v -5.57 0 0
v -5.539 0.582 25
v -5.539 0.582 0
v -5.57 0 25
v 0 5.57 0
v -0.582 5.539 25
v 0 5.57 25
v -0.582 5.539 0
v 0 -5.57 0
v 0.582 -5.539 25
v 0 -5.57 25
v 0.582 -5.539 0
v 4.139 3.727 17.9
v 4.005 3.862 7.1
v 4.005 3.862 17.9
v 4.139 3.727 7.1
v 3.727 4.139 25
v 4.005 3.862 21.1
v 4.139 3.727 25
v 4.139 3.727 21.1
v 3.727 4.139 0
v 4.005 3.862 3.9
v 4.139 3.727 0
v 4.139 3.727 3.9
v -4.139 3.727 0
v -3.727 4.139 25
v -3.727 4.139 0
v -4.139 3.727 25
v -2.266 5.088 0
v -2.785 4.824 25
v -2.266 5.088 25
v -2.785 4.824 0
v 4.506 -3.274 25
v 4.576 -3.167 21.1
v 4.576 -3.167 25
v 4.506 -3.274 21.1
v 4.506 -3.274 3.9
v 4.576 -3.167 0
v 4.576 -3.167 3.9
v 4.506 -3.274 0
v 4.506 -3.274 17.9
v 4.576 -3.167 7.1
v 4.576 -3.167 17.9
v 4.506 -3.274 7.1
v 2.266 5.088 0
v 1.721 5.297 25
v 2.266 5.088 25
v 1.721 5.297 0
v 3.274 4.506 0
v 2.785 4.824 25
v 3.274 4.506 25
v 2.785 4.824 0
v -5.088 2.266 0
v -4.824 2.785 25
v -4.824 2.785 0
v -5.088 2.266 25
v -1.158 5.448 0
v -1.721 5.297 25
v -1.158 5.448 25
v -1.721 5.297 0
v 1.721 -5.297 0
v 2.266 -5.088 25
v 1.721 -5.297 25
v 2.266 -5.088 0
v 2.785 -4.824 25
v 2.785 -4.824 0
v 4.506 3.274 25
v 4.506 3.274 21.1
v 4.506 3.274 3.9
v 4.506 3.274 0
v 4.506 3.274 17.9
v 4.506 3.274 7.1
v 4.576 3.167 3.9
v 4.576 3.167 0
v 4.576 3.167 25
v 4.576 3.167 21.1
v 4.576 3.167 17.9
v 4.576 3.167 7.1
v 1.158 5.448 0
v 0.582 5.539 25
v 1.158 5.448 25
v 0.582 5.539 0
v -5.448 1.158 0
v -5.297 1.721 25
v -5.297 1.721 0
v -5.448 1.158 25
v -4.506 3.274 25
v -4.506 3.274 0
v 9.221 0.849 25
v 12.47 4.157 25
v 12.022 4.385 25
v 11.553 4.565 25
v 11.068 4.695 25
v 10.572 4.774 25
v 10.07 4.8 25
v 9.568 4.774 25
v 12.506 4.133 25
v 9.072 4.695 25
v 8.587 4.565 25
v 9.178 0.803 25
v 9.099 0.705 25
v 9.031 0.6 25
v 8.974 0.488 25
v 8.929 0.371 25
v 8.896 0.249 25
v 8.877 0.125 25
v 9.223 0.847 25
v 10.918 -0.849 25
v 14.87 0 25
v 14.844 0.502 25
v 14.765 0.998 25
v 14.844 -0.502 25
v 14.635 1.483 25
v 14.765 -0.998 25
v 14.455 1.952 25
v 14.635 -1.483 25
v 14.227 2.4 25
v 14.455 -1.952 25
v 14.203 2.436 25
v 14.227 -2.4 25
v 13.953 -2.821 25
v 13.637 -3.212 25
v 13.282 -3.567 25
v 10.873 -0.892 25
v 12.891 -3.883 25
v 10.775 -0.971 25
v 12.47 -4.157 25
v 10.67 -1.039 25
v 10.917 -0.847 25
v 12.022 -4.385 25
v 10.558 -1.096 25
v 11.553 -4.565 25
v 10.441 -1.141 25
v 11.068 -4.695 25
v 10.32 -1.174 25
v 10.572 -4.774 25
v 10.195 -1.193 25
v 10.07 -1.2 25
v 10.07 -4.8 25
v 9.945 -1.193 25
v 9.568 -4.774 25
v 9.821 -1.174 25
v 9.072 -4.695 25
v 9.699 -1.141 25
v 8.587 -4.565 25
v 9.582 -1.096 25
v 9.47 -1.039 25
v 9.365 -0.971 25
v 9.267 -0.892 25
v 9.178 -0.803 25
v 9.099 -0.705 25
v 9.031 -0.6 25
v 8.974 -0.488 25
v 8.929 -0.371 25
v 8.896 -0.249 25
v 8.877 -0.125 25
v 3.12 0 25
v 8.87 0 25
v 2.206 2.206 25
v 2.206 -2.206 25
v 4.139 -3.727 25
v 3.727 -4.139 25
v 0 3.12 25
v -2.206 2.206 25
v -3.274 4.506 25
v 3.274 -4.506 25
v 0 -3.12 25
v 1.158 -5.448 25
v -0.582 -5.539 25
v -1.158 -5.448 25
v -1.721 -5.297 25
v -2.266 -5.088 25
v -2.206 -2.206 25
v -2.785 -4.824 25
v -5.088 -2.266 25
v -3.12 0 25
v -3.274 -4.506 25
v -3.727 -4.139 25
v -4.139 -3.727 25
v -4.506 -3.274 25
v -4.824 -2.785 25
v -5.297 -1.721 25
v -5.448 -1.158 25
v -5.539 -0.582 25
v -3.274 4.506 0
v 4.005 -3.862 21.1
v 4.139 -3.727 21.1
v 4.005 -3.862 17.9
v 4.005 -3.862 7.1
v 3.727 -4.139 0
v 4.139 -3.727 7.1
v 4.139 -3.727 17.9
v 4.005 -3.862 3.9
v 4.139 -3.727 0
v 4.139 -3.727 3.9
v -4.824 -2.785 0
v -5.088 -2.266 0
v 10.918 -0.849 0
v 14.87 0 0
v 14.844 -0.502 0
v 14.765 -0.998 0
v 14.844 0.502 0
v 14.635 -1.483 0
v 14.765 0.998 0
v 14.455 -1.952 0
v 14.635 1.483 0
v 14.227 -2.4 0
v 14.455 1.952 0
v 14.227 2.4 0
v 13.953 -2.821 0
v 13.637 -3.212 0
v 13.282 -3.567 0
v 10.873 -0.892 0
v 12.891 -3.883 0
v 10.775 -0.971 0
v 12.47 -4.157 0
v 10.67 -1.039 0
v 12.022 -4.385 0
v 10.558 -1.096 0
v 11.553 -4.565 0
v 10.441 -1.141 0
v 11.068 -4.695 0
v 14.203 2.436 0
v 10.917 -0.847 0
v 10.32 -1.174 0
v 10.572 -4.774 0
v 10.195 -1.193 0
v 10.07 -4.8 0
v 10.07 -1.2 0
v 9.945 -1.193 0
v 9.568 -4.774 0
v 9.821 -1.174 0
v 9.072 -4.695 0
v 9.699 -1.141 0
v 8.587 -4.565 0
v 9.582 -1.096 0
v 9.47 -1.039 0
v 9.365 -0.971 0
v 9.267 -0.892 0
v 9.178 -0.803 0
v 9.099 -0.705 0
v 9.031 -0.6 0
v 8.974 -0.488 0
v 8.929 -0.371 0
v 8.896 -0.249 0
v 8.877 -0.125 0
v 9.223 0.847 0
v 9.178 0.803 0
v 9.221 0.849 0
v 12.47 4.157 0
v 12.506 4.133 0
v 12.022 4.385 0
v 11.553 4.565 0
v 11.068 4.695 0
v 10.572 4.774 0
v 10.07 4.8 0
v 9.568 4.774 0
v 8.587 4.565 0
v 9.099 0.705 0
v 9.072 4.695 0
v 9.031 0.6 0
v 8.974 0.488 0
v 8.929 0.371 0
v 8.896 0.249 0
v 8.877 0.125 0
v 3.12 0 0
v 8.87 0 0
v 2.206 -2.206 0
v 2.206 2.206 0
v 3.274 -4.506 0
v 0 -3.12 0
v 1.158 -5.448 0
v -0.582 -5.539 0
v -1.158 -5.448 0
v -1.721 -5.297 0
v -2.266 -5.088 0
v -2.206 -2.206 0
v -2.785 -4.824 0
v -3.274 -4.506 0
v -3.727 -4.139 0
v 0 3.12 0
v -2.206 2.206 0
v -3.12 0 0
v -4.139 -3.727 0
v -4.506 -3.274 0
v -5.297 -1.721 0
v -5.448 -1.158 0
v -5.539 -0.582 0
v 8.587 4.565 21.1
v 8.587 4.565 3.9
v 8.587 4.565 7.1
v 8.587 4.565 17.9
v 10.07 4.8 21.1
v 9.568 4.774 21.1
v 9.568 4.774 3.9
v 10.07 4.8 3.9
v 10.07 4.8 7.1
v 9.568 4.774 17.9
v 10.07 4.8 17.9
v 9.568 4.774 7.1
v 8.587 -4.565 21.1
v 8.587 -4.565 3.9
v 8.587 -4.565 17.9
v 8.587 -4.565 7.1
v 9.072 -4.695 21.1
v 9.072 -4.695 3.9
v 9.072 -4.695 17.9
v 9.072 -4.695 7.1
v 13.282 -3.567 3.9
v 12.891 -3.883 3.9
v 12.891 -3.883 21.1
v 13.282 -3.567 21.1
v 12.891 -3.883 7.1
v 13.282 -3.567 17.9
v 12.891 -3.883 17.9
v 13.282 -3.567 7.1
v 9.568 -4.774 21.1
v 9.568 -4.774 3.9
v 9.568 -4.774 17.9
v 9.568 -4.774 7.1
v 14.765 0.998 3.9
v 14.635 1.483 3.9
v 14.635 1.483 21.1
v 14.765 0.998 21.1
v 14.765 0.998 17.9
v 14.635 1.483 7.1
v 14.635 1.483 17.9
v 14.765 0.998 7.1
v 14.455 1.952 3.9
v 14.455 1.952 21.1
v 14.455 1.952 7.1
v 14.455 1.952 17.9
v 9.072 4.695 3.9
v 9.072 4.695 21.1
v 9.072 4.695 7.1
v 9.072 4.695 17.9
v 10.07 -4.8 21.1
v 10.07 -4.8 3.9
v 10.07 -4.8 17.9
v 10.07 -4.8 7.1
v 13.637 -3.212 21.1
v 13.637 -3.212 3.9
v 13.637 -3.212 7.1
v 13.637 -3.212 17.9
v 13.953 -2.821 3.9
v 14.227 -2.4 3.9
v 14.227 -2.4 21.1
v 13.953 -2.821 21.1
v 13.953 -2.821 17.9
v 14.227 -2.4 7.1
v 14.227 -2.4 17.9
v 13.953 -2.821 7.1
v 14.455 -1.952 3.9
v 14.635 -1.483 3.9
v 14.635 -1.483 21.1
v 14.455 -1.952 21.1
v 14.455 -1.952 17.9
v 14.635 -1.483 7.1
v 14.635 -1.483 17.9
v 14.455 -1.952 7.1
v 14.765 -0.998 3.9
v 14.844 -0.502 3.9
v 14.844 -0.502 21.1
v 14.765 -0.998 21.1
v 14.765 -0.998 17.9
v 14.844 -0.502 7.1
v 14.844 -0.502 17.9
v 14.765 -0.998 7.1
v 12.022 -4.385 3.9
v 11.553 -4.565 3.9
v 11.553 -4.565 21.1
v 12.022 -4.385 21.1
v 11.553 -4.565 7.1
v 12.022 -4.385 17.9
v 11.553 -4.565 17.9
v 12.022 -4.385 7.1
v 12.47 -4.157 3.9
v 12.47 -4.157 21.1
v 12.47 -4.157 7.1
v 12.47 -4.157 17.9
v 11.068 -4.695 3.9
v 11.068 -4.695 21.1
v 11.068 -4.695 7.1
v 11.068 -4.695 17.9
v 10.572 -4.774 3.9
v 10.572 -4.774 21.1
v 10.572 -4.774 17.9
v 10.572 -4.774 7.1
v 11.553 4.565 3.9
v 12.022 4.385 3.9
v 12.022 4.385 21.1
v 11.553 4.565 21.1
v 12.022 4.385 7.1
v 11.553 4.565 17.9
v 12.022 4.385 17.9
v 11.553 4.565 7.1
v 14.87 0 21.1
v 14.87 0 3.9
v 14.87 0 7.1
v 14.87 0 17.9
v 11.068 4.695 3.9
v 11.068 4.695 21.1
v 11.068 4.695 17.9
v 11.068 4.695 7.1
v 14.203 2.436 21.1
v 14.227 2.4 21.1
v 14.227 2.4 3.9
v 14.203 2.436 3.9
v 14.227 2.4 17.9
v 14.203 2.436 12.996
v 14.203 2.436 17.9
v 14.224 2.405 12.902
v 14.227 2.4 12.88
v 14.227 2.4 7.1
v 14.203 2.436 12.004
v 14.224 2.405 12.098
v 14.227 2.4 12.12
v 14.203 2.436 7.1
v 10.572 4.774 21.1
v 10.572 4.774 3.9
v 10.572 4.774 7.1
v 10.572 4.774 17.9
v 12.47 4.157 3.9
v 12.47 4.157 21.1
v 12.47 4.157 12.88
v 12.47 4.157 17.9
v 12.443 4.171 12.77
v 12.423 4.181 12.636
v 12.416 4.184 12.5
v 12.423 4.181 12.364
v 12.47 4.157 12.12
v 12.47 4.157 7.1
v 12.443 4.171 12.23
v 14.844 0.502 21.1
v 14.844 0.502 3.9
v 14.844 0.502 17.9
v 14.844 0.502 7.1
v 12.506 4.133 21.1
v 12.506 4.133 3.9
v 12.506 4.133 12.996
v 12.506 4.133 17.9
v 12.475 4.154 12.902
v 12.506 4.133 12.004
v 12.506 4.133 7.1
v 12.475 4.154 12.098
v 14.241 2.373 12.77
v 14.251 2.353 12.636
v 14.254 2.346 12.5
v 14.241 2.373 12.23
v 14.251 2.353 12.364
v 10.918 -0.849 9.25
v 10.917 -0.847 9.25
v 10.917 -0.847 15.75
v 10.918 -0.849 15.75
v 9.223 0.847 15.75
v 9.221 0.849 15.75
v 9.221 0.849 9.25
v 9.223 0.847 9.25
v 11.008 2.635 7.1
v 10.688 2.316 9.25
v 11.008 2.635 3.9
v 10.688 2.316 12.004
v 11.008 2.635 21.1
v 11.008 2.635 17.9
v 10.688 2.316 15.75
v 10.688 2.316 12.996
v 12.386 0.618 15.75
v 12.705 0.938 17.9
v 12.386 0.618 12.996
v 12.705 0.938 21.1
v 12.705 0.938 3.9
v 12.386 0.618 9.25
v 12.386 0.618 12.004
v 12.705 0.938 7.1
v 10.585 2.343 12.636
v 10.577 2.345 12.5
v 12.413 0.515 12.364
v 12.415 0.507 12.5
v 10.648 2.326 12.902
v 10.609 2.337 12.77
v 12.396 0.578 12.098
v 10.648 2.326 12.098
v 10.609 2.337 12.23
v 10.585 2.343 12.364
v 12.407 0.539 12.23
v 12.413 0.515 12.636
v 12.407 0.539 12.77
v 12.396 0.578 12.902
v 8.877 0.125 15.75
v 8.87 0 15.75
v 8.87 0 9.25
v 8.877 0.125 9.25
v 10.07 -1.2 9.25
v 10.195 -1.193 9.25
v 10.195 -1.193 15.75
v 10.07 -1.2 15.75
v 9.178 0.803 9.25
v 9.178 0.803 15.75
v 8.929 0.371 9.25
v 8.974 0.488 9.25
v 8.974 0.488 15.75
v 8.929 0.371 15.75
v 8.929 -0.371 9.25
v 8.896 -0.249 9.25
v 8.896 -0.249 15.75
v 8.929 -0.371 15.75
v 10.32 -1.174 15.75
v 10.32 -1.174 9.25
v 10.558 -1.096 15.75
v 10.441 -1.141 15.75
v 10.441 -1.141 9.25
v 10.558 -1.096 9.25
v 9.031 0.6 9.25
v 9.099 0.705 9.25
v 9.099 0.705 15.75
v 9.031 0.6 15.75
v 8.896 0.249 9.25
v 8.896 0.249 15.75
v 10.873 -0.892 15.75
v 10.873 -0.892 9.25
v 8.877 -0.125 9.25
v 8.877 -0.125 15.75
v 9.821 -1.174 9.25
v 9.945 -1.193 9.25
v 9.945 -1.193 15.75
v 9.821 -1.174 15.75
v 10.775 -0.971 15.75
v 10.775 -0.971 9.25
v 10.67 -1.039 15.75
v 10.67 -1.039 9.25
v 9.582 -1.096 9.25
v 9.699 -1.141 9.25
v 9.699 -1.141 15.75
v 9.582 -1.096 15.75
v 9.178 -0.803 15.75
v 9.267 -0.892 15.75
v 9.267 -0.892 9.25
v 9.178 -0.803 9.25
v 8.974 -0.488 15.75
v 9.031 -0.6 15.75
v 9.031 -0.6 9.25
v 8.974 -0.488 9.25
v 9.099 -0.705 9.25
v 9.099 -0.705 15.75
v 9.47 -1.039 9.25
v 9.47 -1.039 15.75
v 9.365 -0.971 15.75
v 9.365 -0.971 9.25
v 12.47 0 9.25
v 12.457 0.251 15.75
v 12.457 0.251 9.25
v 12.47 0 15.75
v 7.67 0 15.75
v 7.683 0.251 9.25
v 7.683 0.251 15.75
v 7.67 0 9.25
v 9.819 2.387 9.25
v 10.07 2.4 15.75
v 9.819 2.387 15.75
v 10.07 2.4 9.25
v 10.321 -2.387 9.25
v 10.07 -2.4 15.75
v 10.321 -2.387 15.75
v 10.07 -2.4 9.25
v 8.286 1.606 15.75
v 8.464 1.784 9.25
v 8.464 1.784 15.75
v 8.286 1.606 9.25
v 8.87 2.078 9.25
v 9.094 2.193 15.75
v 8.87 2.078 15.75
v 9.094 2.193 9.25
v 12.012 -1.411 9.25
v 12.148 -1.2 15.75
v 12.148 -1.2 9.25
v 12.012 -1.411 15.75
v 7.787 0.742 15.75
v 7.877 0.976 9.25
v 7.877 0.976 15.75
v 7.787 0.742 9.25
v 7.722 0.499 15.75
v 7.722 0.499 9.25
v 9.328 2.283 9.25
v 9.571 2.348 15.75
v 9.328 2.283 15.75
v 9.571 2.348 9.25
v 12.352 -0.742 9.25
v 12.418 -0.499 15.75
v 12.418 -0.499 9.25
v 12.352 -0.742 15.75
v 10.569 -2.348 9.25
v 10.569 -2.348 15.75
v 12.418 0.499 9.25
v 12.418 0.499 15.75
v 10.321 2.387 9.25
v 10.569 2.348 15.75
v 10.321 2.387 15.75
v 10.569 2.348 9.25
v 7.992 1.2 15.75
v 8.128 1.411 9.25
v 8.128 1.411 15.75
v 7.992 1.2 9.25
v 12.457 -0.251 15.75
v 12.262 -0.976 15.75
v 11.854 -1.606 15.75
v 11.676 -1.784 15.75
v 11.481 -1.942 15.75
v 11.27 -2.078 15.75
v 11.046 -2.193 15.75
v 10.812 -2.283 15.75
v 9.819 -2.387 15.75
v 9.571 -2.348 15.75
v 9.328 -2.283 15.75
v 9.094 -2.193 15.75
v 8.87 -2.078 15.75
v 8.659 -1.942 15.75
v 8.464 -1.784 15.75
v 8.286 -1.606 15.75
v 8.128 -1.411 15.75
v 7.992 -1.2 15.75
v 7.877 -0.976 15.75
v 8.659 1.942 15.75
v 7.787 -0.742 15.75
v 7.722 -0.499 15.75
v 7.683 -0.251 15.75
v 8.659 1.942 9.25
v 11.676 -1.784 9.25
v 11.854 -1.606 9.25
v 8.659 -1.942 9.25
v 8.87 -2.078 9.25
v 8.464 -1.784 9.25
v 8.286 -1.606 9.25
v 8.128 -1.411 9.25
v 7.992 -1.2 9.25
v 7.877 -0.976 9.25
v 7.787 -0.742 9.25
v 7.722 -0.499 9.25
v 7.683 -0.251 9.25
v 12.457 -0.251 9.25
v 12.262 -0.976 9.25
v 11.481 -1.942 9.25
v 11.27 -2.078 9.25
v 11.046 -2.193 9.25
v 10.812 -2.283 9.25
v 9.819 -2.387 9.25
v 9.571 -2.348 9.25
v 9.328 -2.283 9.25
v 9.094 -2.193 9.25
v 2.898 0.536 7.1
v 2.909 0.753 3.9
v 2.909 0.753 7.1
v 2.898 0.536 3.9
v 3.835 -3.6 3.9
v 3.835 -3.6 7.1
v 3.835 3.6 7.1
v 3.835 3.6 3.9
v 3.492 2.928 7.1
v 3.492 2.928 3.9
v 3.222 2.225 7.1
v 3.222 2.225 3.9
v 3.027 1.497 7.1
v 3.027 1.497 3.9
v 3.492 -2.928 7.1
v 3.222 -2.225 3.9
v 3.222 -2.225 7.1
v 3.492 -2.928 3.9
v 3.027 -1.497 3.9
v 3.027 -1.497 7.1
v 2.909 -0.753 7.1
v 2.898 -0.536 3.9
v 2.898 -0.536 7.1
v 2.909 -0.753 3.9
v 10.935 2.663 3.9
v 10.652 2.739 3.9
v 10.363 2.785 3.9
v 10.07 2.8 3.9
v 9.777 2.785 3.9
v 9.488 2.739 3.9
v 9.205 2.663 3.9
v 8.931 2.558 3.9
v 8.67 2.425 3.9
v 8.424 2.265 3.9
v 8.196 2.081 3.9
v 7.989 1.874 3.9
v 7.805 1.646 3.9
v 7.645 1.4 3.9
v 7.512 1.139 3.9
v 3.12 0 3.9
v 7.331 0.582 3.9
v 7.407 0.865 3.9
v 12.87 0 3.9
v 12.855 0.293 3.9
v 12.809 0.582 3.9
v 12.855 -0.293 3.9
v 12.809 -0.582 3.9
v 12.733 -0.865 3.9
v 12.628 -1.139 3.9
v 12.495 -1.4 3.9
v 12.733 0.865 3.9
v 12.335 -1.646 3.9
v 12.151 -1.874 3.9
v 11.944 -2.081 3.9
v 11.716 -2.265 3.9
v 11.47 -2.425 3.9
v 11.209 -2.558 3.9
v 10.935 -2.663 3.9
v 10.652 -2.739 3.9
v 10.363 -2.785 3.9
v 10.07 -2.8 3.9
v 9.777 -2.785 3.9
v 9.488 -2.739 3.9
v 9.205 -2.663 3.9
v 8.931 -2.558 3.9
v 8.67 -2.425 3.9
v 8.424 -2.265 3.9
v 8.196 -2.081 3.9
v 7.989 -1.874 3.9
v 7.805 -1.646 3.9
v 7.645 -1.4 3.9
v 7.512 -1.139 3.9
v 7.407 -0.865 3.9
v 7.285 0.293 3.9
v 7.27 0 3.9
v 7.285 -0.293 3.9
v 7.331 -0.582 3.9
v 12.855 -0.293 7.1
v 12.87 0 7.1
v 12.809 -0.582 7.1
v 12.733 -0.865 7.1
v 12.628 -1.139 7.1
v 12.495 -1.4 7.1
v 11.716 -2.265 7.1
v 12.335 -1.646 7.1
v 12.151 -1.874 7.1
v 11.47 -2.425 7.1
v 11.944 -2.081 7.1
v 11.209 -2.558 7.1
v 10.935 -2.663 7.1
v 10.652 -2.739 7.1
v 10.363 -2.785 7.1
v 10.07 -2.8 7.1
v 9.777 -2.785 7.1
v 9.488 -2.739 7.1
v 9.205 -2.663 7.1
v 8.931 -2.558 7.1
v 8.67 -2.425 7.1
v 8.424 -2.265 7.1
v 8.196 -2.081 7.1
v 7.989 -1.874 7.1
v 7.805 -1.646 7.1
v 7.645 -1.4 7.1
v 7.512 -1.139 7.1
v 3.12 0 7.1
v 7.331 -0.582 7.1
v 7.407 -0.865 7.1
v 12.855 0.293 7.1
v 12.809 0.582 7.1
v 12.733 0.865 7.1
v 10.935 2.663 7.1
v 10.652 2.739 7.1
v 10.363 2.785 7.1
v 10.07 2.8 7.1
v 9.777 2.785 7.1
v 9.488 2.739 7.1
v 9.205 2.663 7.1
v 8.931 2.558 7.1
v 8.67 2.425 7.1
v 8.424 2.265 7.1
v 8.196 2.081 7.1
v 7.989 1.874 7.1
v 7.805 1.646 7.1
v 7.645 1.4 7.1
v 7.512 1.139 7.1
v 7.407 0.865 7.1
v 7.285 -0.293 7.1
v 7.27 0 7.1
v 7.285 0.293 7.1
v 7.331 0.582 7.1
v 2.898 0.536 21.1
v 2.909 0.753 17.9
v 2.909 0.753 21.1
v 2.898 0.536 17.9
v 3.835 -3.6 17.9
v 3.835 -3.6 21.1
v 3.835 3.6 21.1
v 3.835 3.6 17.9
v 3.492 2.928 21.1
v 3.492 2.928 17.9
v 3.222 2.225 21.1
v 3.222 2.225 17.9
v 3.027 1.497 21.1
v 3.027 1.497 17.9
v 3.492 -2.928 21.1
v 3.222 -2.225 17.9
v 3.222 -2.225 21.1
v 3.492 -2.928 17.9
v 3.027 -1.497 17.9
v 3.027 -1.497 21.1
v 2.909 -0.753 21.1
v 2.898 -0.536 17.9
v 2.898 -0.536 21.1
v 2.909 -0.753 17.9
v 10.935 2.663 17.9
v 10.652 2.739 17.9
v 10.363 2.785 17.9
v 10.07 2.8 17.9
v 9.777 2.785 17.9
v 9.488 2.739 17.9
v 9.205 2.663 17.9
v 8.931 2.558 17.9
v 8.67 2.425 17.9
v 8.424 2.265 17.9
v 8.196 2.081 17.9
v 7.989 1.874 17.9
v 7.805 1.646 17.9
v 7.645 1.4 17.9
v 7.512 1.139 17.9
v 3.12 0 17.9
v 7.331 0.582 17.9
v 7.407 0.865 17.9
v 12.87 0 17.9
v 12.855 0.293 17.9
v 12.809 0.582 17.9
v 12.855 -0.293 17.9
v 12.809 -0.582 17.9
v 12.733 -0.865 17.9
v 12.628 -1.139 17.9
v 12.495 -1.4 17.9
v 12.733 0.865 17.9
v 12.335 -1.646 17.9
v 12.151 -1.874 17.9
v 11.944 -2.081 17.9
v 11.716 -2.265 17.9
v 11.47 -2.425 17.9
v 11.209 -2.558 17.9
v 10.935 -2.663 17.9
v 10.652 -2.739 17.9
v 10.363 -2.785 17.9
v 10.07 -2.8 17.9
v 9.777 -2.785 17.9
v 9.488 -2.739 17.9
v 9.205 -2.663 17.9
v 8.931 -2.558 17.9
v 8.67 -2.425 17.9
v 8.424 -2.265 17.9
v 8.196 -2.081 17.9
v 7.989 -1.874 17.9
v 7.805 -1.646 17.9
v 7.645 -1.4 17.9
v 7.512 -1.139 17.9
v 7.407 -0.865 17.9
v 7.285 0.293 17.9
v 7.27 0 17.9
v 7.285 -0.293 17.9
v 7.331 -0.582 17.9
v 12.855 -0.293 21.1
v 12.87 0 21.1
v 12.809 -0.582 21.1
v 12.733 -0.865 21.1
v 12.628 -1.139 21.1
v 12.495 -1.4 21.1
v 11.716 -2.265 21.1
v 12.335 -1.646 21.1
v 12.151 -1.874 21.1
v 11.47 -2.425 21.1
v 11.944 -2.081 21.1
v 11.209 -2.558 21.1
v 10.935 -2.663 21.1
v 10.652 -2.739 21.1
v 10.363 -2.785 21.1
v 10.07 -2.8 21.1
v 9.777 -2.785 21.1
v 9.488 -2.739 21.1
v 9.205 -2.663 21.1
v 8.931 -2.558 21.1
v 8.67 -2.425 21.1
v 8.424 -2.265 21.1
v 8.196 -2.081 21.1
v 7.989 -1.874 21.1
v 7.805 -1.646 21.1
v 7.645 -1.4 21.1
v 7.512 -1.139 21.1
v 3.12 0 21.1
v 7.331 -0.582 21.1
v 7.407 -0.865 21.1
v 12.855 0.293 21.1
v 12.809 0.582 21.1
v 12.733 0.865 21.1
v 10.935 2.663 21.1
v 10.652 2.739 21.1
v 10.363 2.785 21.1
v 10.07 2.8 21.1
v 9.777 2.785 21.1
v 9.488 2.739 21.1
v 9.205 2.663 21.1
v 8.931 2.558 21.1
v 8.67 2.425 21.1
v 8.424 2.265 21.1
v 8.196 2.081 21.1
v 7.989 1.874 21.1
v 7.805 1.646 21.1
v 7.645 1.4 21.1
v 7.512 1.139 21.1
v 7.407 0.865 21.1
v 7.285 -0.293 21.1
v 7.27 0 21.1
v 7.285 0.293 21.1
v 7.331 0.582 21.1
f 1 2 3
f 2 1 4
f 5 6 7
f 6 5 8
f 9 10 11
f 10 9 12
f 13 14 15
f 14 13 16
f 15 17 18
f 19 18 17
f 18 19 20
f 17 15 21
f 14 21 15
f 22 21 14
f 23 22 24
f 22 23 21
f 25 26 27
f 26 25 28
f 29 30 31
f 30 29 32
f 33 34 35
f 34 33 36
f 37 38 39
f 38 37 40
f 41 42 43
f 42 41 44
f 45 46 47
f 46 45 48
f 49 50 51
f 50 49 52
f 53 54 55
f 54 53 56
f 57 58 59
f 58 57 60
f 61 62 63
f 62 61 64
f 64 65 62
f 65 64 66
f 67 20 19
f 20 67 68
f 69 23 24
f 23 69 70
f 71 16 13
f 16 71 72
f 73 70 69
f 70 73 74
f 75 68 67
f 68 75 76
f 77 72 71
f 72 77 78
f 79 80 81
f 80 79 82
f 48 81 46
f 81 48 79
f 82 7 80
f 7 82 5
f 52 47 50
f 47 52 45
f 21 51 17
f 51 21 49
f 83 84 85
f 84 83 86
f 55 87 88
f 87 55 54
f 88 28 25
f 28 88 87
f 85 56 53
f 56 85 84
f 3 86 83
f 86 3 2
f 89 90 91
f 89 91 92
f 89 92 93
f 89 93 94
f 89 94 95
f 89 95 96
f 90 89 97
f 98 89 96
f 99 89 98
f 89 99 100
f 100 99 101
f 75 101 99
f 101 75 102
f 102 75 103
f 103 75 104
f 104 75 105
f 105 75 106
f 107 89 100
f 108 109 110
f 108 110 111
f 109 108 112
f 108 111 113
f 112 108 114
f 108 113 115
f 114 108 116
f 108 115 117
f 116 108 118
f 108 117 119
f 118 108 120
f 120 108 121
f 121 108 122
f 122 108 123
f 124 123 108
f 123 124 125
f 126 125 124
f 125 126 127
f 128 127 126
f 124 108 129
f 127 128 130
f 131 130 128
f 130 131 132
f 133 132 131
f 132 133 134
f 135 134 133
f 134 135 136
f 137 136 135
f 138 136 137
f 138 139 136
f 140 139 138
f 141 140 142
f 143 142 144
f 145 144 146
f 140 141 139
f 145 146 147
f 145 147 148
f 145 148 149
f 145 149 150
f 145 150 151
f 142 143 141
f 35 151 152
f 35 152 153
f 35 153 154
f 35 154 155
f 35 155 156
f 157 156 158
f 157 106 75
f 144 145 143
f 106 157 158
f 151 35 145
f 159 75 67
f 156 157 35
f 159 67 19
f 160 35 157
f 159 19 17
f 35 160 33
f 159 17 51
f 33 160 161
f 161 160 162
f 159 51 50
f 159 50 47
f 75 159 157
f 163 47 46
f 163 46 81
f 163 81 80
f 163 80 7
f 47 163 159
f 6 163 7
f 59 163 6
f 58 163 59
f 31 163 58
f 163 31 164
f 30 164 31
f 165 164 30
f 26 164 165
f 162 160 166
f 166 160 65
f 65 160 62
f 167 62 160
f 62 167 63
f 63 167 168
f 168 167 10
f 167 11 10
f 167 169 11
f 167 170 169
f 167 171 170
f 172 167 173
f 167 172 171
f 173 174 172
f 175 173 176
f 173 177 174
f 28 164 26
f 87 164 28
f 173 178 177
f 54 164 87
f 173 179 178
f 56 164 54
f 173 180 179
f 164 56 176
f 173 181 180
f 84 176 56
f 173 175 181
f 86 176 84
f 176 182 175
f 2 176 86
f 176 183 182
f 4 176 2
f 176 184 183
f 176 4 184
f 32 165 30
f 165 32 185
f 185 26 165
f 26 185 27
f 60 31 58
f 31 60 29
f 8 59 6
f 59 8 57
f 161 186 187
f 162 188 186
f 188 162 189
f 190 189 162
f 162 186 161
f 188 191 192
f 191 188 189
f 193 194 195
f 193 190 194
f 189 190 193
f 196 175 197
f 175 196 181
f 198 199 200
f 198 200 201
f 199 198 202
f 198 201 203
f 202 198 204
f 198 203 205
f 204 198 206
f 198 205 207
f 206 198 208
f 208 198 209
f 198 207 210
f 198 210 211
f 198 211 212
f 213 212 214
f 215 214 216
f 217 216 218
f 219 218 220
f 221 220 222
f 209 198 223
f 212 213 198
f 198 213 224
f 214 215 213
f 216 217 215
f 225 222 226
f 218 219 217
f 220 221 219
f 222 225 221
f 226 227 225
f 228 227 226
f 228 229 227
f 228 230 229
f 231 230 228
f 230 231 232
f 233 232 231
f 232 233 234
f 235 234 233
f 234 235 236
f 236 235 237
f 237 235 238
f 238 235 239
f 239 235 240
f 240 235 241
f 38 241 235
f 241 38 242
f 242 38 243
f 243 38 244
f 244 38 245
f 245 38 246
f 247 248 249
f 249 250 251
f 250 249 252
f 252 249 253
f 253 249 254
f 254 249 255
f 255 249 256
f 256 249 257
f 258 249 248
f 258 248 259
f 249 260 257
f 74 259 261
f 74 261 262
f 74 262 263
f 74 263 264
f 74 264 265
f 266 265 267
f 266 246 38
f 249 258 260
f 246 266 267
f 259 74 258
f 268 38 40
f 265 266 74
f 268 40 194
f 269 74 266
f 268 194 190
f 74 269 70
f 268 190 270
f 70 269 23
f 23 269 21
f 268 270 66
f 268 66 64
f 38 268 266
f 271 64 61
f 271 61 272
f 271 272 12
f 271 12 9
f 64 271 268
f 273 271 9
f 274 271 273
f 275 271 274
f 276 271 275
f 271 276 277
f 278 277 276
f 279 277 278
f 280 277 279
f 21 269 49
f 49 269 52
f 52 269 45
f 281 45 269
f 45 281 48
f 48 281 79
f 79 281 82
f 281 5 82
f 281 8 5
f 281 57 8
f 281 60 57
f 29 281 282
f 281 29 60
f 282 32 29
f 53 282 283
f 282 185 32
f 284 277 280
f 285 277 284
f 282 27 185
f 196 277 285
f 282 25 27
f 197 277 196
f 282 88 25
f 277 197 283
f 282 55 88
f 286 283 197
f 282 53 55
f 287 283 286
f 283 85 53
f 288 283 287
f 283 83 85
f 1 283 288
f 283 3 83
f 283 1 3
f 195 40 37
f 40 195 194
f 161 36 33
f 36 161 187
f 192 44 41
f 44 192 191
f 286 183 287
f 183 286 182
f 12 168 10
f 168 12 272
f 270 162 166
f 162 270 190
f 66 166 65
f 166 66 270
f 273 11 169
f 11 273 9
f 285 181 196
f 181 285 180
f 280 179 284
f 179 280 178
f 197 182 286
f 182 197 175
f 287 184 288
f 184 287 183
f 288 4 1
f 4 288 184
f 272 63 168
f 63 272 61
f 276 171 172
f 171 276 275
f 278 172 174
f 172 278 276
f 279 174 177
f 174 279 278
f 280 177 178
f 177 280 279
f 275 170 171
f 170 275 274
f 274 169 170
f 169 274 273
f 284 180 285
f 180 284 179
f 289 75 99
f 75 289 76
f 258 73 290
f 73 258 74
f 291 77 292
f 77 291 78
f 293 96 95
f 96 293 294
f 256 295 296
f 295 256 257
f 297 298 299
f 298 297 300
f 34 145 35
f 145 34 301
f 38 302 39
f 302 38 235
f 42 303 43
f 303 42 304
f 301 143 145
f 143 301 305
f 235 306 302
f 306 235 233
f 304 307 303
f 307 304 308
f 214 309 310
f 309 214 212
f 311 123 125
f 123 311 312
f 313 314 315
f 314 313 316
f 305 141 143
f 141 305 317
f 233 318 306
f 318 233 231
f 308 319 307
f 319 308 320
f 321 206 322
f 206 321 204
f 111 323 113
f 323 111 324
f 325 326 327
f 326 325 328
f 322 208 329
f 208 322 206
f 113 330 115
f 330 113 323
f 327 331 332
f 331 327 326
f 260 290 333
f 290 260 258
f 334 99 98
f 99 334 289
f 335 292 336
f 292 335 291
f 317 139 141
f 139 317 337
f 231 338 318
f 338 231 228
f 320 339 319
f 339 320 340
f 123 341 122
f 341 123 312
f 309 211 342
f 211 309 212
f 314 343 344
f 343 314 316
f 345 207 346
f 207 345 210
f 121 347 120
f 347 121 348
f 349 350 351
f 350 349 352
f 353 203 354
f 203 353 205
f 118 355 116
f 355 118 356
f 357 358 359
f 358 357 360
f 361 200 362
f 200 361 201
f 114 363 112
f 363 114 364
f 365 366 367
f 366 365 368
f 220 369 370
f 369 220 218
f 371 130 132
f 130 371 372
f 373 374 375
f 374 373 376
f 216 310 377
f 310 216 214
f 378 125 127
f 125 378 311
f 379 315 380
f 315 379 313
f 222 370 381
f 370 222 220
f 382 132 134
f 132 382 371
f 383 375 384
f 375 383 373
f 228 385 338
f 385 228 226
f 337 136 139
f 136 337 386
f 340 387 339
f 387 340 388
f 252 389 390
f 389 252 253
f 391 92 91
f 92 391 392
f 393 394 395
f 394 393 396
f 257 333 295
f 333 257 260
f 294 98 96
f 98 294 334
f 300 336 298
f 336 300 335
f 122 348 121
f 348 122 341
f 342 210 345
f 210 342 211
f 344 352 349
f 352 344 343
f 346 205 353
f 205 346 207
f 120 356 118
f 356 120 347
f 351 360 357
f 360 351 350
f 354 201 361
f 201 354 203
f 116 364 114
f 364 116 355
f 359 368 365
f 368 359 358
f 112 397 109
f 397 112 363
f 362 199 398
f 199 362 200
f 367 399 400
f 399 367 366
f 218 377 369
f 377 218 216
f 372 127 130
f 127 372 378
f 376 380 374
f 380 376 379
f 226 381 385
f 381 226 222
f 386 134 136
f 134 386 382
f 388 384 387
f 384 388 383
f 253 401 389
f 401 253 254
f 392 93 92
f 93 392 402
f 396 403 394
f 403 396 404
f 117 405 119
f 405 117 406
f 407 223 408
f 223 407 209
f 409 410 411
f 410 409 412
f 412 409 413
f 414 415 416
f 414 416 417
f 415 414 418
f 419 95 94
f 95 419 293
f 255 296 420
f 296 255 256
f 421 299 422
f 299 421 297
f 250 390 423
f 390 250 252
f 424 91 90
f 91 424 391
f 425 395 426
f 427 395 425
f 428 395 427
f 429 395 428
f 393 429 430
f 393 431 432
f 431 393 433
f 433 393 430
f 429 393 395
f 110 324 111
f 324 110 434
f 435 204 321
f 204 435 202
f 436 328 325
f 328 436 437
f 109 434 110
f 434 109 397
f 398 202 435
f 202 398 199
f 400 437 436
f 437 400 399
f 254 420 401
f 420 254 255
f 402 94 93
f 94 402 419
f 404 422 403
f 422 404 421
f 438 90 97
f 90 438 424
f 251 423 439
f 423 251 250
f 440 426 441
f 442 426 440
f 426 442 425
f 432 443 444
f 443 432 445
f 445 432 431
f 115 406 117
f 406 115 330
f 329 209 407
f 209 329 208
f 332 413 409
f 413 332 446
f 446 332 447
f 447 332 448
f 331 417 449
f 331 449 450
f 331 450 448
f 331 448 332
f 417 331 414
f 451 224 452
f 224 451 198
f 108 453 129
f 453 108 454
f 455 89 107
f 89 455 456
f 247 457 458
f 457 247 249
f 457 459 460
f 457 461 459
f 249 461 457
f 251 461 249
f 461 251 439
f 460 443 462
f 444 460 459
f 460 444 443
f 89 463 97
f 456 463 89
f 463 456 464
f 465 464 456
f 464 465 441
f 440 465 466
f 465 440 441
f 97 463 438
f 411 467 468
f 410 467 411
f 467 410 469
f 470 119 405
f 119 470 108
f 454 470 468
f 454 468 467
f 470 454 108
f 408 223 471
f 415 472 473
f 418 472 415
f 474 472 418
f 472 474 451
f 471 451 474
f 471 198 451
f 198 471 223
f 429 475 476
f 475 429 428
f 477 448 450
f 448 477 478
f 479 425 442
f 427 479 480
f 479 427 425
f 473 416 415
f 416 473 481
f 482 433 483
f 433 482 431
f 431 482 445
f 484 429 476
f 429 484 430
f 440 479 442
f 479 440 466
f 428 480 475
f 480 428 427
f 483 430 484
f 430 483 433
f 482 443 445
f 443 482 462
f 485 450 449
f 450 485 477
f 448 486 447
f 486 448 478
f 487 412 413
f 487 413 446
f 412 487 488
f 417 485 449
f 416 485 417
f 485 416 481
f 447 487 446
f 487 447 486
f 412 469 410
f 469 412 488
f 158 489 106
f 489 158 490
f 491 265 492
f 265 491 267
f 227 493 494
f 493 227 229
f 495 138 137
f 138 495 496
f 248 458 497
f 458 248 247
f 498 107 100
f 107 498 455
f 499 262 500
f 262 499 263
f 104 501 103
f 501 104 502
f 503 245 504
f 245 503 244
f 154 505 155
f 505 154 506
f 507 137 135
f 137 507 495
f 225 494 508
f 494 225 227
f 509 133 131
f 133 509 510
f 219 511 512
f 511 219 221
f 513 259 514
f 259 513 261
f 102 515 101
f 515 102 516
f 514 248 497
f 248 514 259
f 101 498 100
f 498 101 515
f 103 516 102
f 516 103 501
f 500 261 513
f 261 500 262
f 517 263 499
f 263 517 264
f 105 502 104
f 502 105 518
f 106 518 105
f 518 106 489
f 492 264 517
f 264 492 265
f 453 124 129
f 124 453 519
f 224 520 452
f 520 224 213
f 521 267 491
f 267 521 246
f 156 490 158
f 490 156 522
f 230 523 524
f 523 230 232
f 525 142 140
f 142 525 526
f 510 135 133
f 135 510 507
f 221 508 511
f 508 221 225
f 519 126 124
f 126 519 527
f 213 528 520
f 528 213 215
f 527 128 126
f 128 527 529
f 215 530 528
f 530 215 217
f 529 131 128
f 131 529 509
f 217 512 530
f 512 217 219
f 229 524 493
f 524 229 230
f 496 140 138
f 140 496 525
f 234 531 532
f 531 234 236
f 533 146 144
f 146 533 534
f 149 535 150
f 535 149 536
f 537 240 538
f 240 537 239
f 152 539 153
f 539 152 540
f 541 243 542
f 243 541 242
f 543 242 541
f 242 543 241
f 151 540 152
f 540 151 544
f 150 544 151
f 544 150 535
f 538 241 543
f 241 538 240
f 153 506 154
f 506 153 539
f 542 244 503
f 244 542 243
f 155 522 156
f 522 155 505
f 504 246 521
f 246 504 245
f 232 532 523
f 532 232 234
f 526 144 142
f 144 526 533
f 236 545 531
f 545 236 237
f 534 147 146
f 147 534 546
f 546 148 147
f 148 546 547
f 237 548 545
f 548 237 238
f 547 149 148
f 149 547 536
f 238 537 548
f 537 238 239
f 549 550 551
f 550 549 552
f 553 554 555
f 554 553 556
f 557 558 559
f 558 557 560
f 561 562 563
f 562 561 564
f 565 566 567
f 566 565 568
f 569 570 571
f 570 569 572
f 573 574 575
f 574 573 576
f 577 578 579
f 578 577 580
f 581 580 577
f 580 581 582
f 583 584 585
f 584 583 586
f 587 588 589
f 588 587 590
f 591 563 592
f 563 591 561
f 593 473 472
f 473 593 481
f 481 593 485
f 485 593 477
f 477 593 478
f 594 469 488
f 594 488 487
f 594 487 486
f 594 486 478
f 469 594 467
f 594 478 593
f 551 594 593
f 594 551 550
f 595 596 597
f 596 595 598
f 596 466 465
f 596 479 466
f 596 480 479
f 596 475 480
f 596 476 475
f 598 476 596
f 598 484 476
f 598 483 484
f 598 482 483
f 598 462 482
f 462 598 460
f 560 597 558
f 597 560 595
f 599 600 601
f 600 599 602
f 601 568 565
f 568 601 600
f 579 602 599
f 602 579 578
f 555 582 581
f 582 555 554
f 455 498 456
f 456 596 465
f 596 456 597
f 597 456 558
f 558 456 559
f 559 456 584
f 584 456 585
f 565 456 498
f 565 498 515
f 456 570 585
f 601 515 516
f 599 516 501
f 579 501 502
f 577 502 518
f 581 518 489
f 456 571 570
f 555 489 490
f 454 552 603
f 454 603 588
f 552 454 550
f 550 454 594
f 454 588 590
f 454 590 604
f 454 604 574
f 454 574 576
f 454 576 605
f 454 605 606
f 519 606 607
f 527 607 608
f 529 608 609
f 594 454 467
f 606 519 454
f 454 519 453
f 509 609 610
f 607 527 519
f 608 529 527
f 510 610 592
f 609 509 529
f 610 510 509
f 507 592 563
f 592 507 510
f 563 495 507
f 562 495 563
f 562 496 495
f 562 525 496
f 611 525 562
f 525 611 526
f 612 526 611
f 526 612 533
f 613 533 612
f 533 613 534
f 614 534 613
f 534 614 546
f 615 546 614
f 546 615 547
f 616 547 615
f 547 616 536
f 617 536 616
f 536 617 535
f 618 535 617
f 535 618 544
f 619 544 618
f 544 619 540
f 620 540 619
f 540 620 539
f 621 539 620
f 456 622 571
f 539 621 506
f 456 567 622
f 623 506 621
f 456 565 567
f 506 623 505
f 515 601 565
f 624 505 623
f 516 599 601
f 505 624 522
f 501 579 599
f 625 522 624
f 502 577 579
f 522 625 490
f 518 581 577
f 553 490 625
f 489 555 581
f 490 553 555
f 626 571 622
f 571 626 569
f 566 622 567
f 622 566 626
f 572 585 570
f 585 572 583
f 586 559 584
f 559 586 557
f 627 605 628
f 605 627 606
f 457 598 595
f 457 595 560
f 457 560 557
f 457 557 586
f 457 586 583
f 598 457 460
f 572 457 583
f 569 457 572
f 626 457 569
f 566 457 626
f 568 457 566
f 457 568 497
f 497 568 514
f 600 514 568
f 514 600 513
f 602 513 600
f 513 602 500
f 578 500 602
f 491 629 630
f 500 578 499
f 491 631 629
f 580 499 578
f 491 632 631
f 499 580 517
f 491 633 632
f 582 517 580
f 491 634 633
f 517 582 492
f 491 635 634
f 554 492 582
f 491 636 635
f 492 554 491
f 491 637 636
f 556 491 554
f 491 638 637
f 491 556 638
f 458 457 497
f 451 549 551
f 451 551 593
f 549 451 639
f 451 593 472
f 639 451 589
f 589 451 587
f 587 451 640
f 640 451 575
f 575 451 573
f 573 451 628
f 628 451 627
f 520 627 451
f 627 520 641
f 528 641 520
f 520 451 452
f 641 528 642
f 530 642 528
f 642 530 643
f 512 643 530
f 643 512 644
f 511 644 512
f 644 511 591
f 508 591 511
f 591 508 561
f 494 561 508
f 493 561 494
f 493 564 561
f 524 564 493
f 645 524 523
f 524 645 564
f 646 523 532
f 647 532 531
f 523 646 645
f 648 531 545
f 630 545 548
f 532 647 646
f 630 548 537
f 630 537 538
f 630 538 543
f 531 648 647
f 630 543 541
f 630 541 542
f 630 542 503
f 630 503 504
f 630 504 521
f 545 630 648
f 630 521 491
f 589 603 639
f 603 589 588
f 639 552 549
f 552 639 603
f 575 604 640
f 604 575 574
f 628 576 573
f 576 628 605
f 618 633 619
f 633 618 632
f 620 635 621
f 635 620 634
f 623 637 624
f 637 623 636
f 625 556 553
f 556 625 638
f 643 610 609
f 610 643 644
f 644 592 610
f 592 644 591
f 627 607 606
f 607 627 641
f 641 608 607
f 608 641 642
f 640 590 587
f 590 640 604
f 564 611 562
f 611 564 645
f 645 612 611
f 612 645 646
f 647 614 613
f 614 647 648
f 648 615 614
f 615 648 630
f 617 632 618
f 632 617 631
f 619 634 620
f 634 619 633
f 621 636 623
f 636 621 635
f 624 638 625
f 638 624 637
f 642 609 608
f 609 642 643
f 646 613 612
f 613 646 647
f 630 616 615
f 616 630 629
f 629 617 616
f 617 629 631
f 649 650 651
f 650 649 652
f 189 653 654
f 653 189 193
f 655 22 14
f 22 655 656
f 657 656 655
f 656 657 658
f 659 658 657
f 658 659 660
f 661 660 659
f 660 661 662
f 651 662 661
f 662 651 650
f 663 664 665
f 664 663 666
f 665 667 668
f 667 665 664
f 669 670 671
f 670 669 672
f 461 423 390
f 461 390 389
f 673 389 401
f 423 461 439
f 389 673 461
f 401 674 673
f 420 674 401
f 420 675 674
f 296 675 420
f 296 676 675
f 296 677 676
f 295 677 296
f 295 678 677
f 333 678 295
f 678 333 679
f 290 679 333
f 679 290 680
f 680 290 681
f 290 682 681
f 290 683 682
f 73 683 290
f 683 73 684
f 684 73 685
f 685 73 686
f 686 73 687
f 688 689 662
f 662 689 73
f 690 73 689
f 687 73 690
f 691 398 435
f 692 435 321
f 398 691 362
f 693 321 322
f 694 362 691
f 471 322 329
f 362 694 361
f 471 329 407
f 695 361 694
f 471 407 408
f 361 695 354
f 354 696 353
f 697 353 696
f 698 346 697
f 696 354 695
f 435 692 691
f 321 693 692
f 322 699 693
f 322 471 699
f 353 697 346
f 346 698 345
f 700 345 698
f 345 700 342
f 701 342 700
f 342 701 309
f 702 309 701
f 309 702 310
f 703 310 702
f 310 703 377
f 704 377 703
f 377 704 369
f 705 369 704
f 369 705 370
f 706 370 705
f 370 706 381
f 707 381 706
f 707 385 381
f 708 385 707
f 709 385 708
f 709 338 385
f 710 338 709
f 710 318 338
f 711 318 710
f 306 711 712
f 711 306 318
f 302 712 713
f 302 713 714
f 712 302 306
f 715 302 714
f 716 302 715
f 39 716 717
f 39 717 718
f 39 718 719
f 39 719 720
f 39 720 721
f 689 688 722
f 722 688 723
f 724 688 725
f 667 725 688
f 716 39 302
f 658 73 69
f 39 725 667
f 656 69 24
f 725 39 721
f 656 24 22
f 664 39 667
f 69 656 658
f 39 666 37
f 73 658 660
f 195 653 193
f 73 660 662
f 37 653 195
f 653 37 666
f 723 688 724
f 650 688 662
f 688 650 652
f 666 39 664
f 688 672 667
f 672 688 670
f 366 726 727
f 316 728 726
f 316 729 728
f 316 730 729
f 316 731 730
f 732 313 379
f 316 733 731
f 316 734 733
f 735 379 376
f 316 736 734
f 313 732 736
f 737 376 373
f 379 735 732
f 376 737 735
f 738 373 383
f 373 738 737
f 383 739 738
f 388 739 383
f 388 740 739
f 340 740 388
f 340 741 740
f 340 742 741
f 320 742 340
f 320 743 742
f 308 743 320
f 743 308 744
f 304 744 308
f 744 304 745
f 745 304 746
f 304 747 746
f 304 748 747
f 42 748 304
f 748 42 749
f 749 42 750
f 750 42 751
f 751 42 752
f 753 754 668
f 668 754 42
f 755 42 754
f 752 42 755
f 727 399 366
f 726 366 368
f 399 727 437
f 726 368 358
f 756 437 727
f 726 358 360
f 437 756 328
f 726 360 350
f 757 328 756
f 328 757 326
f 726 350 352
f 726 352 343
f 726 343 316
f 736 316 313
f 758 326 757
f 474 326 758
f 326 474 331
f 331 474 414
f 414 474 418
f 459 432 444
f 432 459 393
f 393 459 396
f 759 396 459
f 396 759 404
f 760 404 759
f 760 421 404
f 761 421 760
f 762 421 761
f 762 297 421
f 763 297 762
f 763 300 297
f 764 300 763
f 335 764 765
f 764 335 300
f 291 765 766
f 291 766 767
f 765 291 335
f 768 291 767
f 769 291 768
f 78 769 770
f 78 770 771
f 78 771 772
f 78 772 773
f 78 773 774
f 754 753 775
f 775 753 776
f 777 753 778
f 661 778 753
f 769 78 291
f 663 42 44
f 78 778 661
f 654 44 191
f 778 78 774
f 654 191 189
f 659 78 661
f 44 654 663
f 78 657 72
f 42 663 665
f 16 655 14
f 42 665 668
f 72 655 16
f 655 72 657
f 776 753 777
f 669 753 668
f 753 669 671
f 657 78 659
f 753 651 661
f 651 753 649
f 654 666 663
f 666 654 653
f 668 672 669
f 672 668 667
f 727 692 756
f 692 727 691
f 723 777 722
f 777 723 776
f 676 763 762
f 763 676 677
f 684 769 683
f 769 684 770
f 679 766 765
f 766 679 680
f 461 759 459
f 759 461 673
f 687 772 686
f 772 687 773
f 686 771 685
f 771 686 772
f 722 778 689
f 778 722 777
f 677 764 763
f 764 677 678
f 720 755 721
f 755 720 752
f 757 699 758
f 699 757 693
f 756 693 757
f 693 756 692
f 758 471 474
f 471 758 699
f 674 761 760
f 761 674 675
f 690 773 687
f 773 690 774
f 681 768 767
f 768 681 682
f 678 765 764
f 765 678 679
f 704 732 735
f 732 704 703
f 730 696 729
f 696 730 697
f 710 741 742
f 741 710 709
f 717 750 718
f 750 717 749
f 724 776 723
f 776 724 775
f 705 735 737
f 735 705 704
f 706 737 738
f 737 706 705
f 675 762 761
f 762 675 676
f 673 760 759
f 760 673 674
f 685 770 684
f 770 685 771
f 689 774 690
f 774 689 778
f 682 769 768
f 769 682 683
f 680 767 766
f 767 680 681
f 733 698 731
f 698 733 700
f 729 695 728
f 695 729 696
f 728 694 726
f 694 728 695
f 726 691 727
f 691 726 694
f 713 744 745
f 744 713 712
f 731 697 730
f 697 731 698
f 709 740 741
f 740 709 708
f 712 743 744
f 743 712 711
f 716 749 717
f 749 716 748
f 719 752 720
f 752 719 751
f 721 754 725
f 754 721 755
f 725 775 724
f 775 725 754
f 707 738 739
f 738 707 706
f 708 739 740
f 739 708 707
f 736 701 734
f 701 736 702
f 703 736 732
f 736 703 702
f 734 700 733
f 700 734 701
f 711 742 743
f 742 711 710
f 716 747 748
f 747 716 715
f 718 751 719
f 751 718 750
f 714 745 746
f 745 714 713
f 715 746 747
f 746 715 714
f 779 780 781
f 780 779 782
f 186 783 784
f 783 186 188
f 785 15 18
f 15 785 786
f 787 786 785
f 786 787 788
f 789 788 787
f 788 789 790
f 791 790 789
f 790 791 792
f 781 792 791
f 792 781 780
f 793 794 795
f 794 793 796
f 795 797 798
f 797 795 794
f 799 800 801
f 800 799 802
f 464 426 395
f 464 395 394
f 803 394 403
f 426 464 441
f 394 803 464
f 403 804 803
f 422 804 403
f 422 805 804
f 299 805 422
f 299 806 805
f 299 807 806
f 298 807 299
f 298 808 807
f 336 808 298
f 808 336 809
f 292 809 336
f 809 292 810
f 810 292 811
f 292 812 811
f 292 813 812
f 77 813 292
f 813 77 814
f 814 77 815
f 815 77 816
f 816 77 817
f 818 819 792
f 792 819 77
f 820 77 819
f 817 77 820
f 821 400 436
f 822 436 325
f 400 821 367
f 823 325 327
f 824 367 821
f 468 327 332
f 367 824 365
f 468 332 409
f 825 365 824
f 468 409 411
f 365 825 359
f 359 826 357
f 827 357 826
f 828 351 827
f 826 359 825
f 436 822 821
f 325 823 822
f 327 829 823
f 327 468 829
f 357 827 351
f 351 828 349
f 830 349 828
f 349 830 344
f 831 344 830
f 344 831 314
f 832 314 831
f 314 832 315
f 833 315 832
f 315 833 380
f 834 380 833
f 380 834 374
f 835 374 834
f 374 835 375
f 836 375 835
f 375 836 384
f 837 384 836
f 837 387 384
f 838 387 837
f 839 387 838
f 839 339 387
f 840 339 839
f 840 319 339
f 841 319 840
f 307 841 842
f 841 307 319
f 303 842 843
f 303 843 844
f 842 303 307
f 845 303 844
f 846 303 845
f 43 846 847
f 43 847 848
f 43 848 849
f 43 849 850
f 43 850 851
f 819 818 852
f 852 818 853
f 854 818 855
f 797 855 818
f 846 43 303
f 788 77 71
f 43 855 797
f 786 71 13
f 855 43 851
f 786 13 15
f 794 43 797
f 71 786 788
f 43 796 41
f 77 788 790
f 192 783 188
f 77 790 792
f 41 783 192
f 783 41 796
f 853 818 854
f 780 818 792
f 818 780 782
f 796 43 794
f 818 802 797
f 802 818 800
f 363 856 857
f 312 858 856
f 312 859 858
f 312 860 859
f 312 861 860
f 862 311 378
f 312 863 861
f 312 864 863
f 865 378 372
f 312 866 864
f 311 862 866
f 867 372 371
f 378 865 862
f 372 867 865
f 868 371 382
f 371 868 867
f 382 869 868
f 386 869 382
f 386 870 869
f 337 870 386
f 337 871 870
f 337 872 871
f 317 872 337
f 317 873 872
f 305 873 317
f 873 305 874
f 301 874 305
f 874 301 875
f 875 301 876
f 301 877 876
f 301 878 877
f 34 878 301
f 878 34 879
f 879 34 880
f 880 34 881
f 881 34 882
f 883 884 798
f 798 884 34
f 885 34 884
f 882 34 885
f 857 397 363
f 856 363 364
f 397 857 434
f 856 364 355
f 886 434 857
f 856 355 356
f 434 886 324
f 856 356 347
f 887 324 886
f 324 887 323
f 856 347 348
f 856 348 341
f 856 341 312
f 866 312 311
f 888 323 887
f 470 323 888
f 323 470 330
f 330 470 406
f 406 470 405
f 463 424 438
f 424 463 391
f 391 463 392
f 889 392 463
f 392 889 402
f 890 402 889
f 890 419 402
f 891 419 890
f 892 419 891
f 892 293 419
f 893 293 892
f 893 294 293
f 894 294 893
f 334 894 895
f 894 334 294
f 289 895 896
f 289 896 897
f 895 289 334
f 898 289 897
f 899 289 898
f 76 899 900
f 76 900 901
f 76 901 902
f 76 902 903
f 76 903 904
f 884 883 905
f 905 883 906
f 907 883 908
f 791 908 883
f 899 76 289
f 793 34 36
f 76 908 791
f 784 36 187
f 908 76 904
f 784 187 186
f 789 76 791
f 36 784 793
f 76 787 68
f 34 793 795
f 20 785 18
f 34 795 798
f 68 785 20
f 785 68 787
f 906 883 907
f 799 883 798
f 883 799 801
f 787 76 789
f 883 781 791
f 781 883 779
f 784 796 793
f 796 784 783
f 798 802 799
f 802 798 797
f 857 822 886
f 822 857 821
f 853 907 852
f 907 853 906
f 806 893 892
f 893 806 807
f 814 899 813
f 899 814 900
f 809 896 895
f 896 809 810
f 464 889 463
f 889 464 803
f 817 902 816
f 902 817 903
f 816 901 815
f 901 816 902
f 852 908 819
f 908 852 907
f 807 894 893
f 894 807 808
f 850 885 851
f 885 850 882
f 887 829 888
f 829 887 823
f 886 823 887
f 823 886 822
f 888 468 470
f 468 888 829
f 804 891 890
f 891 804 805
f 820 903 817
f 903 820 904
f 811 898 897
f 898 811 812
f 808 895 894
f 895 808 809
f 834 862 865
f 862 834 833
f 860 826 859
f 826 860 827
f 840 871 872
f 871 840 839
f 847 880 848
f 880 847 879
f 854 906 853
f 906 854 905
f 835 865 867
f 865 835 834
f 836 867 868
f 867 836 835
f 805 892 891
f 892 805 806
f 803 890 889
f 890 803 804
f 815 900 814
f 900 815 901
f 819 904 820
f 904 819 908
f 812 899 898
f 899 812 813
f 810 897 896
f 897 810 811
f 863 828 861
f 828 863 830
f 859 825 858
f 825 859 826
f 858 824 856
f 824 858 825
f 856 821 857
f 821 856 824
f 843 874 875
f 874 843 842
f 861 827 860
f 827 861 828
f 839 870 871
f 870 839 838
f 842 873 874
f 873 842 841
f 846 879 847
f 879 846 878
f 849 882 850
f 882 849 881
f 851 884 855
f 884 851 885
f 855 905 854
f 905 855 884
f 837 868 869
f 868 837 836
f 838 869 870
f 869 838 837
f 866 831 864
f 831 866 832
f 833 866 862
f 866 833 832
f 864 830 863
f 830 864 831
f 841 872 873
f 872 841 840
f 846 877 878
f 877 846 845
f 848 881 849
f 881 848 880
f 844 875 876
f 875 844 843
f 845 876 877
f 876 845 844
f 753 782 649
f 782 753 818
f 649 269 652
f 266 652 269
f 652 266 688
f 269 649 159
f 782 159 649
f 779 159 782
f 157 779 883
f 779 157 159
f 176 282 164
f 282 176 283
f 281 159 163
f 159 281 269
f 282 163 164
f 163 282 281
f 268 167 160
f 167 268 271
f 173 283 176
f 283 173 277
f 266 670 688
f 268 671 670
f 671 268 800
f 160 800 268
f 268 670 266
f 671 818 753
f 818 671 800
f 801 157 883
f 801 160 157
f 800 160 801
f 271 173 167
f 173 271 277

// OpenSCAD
// =============================================================================
// PROJECT: UNIVERSAL ELRS T-ANTENNA MOUNT
// VERSION: 6.5 (Master Library Edition)
// DESCRIPTION: Modular mount for T-style dipole antennas. Features a "revolving"
//              entrance that allows for 360-degree cable routing flexibility.
// =============================================================================

/* [1. USER EDITABLE PARAMETERS] */

// Thickness of the TPU skin. 2.4mm = exactly 6 walls with a 0.4mm nozzle.
wall_thickness  = 2.4;   

// Smoothness of circles. 60 provides high-quality prints without lag.
$fn = 60; 

// The outer diameter of your frame's aluminum standoff.
standoff_dia    = 6.34;   

// Total vertical height of the TPU mount.
sleeve_height   = 25.0;  

// 0 = Vertical (Up/Down), 1 = Horizontal (Left/Right).
antenna_orientation = 0; 

// REVOLUTION: Rotates the loading slit and cable exit around the cradle.
// 0 = Outward, 90 = Side, 180 = Toward Standoff.
slot_rotation_deg = 45; 

/* [2. ANTENNA HARDWARE SPECS] */

// Diameter of the thin flexible antenna wires.
wire_dia        = 2.4;   

// Diameter of the rigid plastic center junction (the "T").
junction_dia    = 4.8;   

// Length of the rigid center junction.
junction_width  = 6.5;   

// Total length of the cradle arm.
cradle_length   = 25.0;  

// Diameter of the coax cable leading to the receiver.
feedline_dia    = 2.6;   

/* [3. ZIP-TIE & PLACEMENT] */

// Width of the zip-tie channel.
ziptie_width    = 3.2;   

// Distance between the centers of the two zip-tie slots.
ziptie_spacing  = 14.0;   

// TPU "floor" thickness inside the zip-tie channel for antenna protection.
ziptie_floor    = 0.8;

// Distance (air gap) between the standoff and the antenna cradle.
plane_offset    = 4.5;   

/* [4. INTERNAL CALCULATIONS] */

total_offset = (standoff_dia/2) + wall_thickness + plane_offset;
rot_angle = (antenna_orientation == 1) ? 90 : 0;

// =============================================================================
// GEOMETRIC CONSTRAINTS (The "Safety Catch")
// =============================================================================

assert(sleeve_height >= cradle_length, 
    str("ERROR: sleeve_height (", sleeve_height, ") must be >= cradle_length"));

// =============================================================================
// MAIN ASSEMBLY
// =============================================================================

difference() {
    
    // --- STEP A: THE SOLID "CLAY" ---
    union() {
        // Create the sleeve that slides over the standoff.
        cylinder(h=sleeve_height, d=standoff_dia + (wall_thickness*2));
        
        // 'hull' creates a smooth, strong bridge between the sleeve and the cradle.
        hull() {
            translate([0, 0, sleeve_height/2])
                cube([standoff_dia + wall_thickness, 0.1, sleeve_height], center=true);
            
            translate([total_offset, 0, sleeve_height/2])
                rotate([rot_angle, 0, 0])
                    cylinder(h=cradle_length, d=junction_dia + (wall_thickness*2), center=true);
        }
    }

    // --- STEP B: THE "FINAL MACHINING" (Subtractions) ---
    
    // 1. The Standoff Hole. We use 8 sides (Octagon) for better TPU friction.
    translate([0, 0, -1])
        cylinder(h=sleeve_height + 2, d=standoff_dia - 0.1, $fn=8);

    // 2. THE ANTENNA CAVITY.
    // We move to the cradle's position and orient it (Vertical vs Horizontal).
    translate([total_offset, 0, sleeve_height/2])
        rotate([rot_angle, 0, 0]) {
            
            // STATIC BORES: These stay put because the dipole wires don't revolve.
            cylinder(h=cradle_length + 2, d=wire_dia, center=true); 
            cylinder(h=junction_width, d=junction_dia, center=true); 
            
            // REVOLVING FEATURES: These spin around the longitudinal (Z) axis.
            // This is the "Clockface" logic.
            rotate([0, 0, slot_rotation_deg]) {
                
                // The Snap-Fit Slit: The "Entry Door" for the antenna.
                translate([0, -wire_dia/2, -cradle_length/2 - 1])
                    cube([junction_dia + 10, wire_dia, cradle_length + 2]);
                    
                // The Feedline Exit: The "Tunnel" for the coax cable.
                rotate([0, 90, 0])
                    cylinder(h=junction_dia + 10, d=feedline_dia);
            }
        }

    // 3. THE ZIP-TIE CHANNELS.
    // These are placed symmetrically around the center T-junction.
    for(i=[-1, 1]) {
        translate([total_offset, 0, sleeve_height/2])
            rotate([rot_angle, 0, 0])
                translate([0, 0, i * (ziptie_spacing/2)])
                    difference() {
                        // The channel depth.
                        cylinder(h=ziptie_width, d=junction_dia + (wall_thickness*4), center=true);
                        // The inner core to prevent crushing the antenna.
                        cylinder(h=ziptie_width + 1, d=junction_dia + ziptie_floor, center=true);
                    }
    }
}
